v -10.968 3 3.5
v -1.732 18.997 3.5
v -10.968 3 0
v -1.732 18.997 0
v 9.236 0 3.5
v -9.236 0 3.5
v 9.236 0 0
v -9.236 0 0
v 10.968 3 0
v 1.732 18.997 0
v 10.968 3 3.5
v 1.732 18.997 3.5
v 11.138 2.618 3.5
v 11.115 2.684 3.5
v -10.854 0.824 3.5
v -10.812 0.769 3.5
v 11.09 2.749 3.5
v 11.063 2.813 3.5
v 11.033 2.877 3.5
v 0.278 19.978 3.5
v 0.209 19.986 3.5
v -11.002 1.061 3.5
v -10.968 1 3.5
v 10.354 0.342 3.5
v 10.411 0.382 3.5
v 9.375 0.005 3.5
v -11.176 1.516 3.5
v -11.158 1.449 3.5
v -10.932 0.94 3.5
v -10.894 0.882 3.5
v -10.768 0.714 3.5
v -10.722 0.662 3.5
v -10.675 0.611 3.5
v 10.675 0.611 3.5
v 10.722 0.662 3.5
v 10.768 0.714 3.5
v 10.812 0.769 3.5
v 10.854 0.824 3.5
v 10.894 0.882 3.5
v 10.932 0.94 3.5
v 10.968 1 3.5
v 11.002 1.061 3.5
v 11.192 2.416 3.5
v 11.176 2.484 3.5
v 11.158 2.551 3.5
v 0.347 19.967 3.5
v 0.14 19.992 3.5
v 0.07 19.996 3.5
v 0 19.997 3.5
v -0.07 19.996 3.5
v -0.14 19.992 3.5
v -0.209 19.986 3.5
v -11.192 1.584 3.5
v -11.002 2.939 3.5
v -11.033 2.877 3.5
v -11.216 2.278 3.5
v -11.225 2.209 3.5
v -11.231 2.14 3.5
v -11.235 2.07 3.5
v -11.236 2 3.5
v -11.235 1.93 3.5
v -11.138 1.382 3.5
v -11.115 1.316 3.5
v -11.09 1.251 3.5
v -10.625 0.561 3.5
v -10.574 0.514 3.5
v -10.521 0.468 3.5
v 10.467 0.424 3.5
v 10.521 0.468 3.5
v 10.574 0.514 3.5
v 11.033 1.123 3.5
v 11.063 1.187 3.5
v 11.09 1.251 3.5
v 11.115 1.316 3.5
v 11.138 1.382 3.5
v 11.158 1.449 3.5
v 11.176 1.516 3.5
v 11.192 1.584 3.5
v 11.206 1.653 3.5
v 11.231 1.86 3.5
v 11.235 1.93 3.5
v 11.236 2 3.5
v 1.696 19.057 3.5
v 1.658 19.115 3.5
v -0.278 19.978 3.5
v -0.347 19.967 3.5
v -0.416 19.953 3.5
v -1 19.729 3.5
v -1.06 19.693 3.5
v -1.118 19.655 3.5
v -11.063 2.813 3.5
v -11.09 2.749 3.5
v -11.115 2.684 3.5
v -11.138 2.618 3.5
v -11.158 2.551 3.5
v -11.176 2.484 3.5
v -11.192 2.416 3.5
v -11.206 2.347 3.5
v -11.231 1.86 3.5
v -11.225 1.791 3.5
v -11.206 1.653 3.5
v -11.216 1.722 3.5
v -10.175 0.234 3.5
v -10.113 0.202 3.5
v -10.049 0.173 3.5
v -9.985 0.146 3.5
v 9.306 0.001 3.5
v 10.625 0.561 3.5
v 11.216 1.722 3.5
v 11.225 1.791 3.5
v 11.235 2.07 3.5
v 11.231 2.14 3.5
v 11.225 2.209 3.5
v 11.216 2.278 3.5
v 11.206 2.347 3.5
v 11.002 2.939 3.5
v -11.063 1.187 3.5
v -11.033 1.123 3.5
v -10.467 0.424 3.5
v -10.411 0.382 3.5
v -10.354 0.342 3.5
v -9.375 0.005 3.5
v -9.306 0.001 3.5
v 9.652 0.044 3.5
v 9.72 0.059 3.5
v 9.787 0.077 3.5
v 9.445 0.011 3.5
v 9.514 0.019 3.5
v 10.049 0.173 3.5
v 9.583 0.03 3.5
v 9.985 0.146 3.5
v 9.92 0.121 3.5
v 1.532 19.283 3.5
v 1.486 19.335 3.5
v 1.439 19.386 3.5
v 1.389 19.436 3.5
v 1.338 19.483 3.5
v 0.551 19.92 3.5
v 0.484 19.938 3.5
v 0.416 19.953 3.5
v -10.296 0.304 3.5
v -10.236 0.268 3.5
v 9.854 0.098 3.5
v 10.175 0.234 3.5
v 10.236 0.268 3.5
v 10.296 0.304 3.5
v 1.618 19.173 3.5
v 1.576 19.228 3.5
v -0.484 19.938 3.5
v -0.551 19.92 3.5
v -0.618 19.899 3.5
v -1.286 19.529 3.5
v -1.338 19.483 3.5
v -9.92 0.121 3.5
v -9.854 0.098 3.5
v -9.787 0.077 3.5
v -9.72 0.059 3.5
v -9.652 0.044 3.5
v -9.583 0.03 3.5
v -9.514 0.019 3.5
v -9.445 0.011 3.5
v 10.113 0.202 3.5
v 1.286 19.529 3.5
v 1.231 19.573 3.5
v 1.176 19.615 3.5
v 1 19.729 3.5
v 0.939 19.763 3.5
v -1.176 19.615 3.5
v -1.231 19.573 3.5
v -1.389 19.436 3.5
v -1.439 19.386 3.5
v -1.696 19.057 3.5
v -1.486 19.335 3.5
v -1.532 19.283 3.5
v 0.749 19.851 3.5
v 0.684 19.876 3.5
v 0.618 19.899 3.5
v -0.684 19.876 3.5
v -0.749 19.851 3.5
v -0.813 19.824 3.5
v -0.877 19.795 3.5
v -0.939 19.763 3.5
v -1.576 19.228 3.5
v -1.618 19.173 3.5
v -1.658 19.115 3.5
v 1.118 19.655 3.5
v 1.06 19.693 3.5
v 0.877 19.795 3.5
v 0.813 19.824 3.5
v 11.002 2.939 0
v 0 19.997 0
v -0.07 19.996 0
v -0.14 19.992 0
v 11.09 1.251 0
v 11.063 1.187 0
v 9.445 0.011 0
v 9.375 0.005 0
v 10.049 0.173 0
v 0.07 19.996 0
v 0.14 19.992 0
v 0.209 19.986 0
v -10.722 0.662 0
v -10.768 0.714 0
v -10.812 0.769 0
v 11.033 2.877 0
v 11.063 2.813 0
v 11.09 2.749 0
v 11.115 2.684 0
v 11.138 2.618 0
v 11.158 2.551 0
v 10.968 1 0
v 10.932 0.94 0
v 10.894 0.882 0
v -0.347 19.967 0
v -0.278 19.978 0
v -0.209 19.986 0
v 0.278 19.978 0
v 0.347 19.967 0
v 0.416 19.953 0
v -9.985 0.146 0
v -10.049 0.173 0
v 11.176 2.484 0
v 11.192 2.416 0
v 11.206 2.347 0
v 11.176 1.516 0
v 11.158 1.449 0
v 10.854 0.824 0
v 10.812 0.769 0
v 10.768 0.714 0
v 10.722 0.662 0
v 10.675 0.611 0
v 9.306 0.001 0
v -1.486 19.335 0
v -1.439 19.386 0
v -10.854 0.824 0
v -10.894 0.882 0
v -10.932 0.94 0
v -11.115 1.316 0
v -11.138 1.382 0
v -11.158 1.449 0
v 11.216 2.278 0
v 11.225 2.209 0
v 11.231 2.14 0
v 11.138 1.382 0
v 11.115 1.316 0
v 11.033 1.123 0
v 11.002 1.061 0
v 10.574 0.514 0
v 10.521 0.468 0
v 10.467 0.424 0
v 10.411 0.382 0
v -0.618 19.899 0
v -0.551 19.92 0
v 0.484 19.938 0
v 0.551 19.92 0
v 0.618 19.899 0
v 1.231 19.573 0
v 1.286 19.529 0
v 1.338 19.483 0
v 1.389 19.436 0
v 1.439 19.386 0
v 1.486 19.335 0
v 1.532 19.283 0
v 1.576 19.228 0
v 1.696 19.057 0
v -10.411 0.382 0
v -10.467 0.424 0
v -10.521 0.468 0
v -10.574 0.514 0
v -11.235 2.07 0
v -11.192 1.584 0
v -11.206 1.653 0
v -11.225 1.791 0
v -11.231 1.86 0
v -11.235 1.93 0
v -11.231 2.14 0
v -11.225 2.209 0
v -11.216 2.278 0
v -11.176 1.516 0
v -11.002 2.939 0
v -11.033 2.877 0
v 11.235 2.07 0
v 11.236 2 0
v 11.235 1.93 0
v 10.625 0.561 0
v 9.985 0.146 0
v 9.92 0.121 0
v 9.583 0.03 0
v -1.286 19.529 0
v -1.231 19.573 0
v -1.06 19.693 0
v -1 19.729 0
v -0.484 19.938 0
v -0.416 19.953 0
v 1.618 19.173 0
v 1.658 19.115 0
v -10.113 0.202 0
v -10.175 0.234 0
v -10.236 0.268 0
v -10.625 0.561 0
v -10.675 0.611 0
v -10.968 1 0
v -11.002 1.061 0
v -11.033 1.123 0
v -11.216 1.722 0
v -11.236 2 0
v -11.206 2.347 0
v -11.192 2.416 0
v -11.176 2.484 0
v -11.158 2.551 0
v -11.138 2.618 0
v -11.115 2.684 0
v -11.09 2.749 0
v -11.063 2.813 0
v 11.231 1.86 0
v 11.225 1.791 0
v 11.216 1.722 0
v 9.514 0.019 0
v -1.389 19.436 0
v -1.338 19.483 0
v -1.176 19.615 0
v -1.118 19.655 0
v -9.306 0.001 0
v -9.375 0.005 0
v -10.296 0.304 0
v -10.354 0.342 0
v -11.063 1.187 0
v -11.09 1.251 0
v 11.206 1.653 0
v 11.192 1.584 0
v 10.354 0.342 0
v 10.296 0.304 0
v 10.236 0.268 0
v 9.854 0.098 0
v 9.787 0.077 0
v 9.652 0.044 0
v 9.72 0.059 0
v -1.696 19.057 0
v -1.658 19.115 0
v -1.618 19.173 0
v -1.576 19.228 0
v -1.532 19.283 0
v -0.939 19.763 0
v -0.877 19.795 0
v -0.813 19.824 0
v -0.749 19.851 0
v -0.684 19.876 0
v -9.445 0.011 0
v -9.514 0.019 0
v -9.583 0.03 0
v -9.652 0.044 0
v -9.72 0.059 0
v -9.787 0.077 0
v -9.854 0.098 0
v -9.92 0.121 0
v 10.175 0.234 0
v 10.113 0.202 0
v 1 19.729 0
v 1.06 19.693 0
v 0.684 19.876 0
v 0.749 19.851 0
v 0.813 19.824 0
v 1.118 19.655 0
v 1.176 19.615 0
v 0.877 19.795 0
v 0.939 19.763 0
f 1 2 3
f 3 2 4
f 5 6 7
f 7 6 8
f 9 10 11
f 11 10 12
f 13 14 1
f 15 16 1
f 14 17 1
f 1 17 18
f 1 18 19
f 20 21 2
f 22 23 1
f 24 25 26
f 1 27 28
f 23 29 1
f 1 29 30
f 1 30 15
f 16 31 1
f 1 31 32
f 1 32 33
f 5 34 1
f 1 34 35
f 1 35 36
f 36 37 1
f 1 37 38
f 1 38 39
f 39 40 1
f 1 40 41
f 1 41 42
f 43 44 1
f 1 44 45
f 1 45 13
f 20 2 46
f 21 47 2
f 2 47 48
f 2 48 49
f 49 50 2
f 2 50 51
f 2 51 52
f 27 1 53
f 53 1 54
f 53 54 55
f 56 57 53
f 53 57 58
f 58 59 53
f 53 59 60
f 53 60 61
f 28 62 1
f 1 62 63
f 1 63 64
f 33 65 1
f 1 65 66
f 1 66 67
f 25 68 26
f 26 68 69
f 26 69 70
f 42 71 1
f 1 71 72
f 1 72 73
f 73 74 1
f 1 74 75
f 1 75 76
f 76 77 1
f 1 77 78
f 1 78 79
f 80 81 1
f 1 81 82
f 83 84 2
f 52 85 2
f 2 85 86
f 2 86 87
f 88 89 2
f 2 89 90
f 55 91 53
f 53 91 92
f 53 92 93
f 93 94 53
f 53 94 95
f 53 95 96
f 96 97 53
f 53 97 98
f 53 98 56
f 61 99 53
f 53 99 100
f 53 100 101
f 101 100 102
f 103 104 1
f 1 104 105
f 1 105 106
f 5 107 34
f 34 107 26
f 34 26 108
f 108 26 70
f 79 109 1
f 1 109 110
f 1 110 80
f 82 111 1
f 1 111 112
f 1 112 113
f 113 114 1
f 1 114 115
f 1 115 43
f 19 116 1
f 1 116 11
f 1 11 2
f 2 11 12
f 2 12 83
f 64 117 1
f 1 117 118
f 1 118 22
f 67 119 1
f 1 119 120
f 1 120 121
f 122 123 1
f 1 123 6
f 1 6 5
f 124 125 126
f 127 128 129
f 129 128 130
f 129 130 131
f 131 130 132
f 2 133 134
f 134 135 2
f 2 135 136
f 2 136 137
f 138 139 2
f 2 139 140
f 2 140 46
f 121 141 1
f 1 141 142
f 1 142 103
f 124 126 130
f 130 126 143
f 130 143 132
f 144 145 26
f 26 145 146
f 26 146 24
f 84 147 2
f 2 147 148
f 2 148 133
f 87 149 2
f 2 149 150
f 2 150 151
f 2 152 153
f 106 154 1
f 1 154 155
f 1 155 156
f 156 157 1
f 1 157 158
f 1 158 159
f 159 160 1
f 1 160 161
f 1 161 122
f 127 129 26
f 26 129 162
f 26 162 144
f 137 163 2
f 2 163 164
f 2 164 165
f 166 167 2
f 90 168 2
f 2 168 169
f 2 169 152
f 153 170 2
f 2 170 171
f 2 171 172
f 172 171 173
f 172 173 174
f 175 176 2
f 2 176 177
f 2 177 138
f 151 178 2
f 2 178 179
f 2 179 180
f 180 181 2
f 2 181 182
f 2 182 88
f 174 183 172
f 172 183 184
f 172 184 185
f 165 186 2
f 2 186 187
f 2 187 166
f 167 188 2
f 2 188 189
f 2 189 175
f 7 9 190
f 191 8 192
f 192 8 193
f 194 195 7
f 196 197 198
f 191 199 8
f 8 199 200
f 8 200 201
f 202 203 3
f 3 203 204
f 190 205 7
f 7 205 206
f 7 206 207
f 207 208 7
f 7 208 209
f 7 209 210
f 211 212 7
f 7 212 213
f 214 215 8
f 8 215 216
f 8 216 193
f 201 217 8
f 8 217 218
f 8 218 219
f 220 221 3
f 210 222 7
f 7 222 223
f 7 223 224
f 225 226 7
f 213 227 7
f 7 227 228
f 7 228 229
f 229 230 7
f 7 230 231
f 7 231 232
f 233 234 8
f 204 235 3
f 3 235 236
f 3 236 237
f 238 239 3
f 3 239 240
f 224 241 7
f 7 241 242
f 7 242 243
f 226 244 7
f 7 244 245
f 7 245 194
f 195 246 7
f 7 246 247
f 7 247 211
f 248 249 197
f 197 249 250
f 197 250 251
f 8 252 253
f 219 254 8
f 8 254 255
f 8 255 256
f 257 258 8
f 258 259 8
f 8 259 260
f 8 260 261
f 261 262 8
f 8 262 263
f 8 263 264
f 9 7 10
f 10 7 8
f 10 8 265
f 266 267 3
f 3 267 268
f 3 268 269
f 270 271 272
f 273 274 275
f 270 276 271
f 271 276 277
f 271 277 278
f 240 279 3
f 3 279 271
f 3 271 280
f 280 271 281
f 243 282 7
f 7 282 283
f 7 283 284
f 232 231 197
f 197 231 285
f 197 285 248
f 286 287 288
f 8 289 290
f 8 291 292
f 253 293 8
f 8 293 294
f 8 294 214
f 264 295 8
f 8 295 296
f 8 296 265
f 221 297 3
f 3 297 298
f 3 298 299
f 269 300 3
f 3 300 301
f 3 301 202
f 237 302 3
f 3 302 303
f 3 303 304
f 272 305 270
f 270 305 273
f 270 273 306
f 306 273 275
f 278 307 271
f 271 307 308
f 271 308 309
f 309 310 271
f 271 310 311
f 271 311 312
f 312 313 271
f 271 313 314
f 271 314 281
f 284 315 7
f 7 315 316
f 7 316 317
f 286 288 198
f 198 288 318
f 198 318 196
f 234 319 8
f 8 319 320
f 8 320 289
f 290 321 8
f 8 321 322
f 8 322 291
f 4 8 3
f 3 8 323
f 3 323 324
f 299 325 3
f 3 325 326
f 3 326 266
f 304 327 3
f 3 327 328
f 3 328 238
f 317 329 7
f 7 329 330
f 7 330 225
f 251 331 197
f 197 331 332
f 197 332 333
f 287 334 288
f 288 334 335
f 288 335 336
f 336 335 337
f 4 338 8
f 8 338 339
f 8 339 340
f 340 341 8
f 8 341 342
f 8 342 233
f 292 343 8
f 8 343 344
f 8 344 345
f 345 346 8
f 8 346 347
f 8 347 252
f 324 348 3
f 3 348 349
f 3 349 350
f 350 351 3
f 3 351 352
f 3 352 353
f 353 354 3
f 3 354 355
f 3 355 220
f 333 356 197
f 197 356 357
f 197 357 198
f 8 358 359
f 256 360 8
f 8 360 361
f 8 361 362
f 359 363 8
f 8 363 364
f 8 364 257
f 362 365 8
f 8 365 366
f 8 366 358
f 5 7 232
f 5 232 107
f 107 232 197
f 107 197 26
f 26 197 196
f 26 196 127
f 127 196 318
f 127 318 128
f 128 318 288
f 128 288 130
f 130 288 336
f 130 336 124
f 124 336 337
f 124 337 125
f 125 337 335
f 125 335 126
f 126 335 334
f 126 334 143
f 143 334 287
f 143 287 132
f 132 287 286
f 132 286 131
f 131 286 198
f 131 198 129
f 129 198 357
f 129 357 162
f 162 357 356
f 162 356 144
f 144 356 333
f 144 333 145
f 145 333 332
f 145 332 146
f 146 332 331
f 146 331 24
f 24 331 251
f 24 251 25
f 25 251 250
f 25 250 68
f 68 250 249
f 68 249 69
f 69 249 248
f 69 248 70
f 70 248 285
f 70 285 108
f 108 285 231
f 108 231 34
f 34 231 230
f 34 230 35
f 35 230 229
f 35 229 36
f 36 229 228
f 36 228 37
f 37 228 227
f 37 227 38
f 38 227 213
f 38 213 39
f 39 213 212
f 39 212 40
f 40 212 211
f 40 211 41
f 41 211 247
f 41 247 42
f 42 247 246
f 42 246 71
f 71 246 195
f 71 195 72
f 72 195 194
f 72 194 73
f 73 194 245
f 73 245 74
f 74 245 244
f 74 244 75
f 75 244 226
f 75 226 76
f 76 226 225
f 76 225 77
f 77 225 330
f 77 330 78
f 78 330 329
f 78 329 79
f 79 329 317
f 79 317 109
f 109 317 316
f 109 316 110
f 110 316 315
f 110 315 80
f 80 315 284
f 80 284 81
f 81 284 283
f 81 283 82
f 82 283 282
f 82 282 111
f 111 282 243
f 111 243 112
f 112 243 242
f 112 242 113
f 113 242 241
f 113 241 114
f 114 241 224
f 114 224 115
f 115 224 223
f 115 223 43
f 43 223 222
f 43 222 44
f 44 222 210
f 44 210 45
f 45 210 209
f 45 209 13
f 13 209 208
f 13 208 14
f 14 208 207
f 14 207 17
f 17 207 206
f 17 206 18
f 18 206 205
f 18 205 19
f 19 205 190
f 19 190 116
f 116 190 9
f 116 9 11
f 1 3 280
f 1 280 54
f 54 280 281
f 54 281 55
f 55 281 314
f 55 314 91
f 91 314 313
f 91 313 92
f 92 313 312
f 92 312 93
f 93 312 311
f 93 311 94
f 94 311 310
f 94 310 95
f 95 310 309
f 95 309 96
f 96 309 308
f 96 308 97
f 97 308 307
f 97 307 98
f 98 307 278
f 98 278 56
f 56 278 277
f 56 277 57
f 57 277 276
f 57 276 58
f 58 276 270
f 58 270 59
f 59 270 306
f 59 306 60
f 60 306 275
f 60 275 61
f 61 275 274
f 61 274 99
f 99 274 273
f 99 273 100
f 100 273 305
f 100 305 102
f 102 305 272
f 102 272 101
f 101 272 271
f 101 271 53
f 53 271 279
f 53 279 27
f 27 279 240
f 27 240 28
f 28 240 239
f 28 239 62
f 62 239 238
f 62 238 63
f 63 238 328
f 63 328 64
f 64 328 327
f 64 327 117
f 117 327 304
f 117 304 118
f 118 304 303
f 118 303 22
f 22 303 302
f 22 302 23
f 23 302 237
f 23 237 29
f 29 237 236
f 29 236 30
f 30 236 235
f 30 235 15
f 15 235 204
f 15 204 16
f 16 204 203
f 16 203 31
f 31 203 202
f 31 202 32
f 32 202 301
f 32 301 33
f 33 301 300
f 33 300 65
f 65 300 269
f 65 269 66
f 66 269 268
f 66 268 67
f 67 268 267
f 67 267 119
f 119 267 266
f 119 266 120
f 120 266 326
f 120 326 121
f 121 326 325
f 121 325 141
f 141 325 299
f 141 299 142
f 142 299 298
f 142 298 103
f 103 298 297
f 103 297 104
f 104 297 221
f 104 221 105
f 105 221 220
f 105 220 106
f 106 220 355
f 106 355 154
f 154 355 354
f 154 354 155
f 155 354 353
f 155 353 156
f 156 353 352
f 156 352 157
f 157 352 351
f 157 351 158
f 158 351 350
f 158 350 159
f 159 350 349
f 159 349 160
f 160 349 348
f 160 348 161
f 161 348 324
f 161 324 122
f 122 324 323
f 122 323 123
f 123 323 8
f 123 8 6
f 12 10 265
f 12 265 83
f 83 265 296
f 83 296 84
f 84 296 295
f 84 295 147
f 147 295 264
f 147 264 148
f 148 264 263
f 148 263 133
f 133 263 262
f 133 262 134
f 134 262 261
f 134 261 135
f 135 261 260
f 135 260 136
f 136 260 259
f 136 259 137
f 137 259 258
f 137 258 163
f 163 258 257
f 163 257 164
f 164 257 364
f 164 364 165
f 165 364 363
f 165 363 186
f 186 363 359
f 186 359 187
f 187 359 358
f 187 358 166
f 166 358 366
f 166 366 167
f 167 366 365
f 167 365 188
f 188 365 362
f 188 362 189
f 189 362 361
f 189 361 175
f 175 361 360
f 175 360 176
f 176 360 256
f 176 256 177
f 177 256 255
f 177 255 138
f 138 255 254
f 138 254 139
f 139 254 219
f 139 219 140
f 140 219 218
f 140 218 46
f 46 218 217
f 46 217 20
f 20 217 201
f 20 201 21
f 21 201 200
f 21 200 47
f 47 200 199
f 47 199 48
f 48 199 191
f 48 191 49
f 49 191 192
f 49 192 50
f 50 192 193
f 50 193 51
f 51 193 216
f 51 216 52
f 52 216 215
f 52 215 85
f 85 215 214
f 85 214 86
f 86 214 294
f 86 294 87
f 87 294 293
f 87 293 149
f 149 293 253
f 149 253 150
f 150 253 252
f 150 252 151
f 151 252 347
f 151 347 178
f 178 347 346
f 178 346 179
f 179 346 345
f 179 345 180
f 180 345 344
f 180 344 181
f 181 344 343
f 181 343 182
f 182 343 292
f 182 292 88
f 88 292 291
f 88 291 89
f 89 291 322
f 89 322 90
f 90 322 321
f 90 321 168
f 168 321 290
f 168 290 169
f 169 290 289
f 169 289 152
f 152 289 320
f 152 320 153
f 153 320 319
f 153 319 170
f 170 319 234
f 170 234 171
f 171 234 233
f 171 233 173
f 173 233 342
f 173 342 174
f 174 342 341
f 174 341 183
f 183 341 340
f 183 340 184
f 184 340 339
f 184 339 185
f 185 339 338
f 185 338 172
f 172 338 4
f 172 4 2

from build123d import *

# Parameters (mm, degrees)
BOSS_EXTRU_1_DEPTH = 3.5
CONG_1_R           = 2


with BuildPart() as part:
    # Esquisse1 → Boss.-Extru.1 (new body)
    with BuildSketch(Plane.XY):
        Polygon((-12.7, 0), (12.7, 0), (0, 21.997045256), align=None)
    extrude(amount=BOSS_EXTRU_1_DEPTH)

    # Congé1
    cong_1_edges = [part.edges().sort_by_distance(p)[0] for p in [
        (0, 21.997045256, 1.75),
        (12.7, 0, 1.75),
        (-12.7, 0, 1.75),
    ]]
    fillet(cong_1_edges, radius=CONG_1_R)


solid = part.part
